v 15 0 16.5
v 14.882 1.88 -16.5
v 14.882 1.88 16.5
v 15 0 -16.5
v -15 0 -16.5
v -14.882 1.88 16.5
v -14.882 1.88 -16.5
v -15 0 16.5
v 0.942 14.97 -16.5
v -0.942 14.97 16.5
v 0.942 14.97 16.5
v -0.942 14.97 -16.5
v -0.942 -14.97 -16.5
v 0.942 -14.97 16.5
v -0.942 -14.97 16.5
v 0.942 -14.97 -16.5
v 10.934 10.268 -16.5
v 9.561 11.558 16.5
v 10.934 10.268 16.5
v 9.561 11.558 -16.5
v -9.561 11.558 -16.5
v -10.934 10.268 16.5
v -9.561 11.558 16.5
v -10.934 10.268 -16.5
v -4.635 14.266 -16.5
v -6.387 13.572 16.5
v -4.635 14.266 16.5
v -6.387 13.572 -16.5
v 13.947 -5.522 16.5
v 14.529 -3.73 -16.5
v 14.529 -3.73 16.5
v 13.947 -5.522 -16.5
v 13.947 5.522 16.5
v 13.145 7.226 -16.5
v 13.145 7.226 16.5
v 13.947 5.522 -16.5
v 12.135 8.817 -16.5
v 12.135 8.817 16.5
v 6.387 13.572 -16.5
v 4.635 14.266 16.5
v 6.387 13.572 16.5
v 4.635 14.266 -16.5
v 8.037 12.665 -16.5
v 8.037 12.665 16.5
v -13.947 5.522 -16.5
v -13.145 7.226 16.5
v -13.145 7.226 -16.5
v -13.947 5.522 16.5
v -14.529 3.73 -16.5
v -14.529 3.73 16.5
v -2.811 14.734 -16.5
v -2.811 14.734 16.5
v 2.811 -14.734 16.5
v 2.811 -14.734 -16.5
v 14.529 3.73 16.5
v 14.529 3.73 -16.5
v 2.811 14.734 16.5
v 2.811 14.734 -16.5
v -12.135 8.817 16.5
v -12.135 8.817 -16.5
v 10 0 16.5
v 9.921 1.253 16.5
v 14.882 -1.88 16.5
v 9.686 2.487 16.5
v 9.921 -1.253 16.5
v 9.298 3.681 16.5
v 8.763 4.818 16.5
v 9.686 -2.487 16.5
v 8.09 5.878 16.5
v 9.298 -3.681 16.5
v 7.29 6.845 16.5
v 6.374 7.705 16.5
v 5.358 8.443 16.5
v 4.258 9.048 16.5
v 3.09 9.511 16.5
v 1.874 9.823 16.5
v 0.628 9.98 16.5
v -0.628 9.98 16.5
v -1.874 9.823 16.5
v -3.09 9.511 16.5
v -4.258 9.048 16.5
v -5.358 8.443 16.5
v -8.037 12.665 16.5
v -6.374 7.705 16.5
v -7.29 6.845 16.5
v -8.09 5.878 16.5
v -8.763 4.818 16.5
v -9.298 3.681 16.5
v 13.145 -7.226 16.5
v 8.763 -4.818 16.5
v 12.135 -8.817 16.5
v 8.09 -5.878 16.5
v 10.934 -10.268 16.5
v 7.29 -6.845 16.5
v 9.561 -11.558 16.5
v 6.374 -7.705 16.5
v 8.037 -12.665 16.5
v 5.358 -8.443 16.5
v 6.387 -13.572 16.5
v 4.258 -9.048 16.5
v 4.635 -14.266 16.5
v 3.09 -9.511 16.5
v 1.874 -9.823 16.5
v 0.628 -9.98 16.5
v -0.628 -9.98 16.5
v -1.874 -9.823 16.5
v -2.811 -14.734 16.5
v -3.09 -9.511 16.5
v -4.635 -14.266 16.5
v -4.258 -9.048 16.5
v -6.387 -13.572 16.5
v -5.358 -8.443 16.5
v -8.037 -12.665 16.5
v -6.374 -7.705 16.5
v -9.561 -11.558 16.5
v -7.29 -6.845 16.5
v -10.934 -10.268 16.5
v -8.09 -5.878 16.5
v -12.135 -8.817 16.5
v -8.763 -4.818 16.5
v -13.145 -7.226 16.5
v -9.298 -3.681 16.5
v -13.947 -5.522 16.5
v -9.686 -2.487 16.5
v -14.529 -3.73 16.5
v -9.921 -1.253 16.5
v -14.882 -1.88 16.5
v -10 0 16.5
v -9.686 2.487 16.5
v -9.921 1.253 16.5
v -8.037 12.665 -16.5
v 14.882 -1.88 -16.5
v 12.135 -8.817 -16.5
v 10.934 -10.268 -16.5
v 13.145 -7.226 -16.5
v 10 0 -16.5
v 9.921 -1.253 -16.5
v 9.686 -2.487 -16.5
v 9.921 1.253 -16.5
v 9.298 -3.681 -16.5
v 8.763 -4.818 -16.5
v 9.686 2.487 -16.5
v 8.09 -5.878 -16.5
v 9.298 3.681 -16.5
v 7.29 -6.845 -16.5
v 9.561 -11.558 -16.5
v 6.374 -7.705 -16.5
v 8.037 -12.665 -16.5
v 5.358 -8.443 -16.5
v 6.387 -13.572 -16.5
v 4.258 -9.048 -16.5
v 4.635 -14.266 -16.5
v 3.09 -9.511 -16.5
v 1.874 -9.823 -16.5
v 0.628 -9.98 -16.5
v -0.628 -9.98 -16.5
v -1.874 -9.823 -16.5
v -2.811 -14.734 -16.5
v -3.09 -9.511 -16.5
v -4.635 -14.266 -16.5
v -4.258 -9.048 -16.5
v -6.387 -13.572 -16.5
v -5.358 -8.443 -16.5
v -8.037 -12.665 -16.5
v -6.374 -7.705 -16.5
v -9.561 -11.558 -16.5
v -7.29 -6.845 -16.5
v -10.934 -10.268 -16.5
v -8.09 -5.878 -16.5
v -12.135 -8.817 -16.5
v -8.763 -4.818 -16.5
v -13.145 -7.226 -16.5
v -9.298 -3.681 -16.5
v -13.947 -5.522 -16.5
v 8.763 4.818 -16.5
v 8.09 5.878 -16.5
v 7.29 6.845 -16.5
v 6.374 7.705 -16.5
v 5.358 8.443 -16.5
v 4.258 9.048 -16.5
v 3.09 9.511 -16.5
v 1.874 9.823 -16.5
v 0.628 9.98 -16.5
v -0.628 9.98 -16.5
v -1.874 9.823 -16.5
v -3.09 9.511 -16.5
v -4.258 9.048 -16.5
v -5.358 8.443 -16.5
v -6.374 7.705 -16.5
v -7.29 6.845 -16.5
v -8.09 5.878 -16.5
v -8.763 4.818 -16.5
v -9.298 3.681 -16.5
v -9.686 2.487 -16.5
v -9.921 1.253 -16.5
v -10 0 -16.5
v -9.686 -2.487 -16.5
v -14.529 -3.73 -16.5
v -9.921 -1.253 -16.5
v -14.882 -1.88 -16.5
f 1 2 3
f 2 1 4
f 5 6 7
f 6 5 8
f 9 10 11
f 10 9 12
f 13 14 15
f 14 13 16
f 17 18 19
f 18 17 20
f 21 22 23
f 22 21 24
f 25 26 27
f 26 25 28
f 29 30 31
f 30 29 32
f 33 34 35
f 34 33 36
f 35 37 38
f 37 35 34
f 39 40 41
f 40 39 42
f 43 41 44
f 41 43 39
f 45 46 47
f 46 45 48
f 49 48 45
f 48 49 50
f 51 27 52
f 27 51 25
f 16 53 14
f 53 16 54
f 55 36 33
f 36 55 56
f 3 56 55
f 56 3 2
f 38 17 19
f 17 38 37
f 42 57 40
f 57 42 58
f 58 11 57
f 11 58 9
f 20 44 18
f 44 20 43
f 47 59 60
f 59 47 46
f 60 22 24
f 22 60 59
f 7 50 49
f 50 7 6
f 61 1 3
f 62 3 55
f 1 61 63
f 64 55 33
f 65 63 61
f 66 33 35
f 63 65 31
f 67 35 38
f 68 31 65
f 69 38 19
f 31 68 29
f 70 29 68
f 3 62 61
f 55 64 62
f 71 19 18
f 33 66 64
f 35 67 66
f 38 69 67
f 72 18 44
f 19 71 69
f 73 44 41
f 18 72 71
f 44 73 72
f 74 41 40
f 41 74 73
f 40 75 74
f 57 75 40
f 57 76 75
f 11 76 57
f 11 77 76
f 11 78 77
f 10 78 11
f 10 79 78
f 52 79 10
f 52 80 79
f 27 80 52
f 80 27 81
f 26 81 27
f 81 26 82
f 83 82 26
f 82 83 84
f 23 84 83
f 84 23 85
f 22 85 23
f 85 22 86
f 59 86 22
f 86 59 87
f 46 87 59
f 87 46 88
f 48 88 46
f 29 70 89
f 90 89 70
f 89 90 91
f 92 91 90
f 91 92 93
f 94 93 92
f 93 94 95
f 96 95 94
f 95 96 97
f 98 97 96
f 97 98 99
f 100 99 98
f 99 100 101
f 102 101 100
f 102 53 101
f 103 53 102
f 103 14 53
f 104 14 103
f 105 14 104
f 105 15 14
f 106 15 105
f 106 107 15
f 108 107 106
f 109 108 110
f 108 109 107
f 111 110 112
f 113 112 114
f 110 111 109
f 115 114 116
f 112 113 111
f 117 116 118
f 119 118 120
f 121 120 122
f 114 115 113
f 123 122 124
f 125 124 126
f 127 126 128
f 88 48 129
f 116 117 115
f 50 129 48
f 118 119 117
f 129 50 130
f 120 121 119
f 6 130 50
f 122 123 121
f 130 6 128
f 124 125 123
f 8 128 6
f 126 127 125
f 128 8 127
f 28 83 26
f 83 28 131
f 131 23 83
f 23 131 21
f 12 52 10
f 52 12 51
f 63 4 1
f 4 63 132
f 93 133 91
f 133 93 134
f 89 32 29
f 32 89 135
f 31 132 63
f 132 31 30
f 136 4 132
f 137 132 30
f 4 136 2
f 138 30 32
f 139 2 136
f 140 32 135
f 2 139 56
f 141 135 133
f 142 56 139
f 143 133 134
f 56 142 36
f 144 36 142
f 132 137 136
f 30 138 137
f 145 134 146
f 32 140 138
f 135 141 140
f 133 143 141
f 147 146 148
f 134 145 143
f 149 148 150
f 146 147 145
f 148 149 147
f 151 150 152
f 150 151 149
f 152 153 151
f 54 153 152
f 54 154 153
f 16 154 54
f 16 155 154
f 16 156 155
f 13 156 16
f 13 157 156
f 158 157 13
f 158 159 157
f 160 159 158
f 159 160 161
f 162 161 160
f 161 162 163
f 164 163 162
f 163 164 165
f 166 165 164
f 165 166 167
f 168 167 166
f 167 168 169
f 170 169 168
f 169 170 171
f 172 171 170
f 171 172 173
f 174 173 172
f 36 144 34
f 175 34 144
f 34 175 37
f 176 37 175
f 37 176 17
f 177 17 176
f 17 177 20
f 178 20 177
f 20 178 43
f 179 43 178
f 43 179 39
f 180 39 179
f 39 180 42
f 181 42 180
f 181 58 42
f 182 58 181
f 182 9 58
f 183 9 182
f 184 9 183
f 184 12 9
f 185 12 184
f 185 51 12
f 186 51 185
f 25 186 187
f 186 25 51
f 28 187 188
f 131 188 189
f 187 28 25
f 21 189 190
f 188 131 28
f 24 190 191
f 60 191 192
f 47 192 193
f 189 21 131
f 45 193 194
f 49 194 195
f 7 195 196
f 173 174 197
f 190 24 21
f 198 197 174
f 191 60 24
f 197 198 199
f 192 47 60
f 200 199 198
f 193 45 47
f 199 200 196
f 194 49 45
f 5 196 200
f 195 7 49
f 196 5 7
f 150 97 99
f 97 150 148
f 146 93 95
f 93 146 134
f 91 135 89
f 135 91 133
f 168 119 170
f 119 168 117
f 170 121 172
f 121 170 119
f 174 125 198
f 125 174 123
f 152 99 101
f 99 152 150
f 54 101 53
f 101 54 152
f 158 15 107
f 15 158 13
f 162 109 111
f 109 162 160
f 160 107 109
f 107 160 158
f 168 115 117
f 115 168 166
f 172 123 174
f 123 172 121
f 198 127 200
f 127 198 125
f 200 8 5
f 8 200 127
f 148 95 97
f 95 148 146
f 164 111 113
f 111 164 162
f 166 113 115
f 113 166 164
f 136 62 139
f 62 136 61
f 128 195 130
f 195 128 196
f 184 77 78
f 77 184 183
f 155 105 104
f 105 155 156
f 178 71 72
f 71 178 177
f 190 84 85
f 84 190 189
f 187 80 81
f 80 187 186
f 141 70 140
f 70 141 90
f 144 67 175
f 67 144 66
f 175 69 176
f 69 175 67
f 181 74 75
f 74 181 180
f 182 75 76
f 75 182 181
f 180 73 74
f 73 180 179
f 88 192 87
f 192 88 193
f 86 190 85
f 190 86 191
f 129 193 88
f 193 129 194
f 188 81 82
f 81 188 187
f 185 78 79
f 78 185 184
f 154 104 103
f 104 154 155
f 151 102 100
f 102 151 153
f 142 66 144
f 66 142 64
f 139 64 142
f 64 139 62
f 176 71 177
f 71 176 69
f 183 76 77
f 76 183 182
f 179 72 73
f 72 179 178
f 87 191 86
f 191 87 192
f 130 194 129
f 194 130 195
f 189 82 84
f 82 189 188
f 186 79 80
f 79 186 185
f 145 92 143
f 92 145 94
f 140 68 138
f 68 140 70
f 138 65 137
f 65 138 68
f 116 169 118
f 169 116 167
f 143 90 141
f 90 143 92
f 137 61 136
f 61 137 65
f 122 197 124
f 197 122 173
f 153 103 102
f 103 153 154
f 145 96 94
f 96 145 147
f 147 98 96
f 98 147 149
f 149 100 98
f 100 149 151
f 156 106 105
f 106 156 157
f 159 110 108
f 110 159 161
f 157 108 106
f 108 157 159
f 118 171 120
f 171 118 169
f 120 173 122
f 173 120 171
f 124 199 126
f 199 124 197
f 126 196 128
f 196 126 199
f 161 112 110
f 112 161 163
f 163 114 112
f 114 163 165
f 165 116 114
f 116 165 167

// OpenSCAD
$fn = 50;


difference() {
	union() {
		translate(v = [0, 0, -16.5000000000]) {
			cylinder(h = 33, r = 15.0000000000);
		}
	}
	union() {
		translate(v = [0, 0, -100.0000000000]) {
			cylinder(h = 200, r = 10);
		}
	}
}
